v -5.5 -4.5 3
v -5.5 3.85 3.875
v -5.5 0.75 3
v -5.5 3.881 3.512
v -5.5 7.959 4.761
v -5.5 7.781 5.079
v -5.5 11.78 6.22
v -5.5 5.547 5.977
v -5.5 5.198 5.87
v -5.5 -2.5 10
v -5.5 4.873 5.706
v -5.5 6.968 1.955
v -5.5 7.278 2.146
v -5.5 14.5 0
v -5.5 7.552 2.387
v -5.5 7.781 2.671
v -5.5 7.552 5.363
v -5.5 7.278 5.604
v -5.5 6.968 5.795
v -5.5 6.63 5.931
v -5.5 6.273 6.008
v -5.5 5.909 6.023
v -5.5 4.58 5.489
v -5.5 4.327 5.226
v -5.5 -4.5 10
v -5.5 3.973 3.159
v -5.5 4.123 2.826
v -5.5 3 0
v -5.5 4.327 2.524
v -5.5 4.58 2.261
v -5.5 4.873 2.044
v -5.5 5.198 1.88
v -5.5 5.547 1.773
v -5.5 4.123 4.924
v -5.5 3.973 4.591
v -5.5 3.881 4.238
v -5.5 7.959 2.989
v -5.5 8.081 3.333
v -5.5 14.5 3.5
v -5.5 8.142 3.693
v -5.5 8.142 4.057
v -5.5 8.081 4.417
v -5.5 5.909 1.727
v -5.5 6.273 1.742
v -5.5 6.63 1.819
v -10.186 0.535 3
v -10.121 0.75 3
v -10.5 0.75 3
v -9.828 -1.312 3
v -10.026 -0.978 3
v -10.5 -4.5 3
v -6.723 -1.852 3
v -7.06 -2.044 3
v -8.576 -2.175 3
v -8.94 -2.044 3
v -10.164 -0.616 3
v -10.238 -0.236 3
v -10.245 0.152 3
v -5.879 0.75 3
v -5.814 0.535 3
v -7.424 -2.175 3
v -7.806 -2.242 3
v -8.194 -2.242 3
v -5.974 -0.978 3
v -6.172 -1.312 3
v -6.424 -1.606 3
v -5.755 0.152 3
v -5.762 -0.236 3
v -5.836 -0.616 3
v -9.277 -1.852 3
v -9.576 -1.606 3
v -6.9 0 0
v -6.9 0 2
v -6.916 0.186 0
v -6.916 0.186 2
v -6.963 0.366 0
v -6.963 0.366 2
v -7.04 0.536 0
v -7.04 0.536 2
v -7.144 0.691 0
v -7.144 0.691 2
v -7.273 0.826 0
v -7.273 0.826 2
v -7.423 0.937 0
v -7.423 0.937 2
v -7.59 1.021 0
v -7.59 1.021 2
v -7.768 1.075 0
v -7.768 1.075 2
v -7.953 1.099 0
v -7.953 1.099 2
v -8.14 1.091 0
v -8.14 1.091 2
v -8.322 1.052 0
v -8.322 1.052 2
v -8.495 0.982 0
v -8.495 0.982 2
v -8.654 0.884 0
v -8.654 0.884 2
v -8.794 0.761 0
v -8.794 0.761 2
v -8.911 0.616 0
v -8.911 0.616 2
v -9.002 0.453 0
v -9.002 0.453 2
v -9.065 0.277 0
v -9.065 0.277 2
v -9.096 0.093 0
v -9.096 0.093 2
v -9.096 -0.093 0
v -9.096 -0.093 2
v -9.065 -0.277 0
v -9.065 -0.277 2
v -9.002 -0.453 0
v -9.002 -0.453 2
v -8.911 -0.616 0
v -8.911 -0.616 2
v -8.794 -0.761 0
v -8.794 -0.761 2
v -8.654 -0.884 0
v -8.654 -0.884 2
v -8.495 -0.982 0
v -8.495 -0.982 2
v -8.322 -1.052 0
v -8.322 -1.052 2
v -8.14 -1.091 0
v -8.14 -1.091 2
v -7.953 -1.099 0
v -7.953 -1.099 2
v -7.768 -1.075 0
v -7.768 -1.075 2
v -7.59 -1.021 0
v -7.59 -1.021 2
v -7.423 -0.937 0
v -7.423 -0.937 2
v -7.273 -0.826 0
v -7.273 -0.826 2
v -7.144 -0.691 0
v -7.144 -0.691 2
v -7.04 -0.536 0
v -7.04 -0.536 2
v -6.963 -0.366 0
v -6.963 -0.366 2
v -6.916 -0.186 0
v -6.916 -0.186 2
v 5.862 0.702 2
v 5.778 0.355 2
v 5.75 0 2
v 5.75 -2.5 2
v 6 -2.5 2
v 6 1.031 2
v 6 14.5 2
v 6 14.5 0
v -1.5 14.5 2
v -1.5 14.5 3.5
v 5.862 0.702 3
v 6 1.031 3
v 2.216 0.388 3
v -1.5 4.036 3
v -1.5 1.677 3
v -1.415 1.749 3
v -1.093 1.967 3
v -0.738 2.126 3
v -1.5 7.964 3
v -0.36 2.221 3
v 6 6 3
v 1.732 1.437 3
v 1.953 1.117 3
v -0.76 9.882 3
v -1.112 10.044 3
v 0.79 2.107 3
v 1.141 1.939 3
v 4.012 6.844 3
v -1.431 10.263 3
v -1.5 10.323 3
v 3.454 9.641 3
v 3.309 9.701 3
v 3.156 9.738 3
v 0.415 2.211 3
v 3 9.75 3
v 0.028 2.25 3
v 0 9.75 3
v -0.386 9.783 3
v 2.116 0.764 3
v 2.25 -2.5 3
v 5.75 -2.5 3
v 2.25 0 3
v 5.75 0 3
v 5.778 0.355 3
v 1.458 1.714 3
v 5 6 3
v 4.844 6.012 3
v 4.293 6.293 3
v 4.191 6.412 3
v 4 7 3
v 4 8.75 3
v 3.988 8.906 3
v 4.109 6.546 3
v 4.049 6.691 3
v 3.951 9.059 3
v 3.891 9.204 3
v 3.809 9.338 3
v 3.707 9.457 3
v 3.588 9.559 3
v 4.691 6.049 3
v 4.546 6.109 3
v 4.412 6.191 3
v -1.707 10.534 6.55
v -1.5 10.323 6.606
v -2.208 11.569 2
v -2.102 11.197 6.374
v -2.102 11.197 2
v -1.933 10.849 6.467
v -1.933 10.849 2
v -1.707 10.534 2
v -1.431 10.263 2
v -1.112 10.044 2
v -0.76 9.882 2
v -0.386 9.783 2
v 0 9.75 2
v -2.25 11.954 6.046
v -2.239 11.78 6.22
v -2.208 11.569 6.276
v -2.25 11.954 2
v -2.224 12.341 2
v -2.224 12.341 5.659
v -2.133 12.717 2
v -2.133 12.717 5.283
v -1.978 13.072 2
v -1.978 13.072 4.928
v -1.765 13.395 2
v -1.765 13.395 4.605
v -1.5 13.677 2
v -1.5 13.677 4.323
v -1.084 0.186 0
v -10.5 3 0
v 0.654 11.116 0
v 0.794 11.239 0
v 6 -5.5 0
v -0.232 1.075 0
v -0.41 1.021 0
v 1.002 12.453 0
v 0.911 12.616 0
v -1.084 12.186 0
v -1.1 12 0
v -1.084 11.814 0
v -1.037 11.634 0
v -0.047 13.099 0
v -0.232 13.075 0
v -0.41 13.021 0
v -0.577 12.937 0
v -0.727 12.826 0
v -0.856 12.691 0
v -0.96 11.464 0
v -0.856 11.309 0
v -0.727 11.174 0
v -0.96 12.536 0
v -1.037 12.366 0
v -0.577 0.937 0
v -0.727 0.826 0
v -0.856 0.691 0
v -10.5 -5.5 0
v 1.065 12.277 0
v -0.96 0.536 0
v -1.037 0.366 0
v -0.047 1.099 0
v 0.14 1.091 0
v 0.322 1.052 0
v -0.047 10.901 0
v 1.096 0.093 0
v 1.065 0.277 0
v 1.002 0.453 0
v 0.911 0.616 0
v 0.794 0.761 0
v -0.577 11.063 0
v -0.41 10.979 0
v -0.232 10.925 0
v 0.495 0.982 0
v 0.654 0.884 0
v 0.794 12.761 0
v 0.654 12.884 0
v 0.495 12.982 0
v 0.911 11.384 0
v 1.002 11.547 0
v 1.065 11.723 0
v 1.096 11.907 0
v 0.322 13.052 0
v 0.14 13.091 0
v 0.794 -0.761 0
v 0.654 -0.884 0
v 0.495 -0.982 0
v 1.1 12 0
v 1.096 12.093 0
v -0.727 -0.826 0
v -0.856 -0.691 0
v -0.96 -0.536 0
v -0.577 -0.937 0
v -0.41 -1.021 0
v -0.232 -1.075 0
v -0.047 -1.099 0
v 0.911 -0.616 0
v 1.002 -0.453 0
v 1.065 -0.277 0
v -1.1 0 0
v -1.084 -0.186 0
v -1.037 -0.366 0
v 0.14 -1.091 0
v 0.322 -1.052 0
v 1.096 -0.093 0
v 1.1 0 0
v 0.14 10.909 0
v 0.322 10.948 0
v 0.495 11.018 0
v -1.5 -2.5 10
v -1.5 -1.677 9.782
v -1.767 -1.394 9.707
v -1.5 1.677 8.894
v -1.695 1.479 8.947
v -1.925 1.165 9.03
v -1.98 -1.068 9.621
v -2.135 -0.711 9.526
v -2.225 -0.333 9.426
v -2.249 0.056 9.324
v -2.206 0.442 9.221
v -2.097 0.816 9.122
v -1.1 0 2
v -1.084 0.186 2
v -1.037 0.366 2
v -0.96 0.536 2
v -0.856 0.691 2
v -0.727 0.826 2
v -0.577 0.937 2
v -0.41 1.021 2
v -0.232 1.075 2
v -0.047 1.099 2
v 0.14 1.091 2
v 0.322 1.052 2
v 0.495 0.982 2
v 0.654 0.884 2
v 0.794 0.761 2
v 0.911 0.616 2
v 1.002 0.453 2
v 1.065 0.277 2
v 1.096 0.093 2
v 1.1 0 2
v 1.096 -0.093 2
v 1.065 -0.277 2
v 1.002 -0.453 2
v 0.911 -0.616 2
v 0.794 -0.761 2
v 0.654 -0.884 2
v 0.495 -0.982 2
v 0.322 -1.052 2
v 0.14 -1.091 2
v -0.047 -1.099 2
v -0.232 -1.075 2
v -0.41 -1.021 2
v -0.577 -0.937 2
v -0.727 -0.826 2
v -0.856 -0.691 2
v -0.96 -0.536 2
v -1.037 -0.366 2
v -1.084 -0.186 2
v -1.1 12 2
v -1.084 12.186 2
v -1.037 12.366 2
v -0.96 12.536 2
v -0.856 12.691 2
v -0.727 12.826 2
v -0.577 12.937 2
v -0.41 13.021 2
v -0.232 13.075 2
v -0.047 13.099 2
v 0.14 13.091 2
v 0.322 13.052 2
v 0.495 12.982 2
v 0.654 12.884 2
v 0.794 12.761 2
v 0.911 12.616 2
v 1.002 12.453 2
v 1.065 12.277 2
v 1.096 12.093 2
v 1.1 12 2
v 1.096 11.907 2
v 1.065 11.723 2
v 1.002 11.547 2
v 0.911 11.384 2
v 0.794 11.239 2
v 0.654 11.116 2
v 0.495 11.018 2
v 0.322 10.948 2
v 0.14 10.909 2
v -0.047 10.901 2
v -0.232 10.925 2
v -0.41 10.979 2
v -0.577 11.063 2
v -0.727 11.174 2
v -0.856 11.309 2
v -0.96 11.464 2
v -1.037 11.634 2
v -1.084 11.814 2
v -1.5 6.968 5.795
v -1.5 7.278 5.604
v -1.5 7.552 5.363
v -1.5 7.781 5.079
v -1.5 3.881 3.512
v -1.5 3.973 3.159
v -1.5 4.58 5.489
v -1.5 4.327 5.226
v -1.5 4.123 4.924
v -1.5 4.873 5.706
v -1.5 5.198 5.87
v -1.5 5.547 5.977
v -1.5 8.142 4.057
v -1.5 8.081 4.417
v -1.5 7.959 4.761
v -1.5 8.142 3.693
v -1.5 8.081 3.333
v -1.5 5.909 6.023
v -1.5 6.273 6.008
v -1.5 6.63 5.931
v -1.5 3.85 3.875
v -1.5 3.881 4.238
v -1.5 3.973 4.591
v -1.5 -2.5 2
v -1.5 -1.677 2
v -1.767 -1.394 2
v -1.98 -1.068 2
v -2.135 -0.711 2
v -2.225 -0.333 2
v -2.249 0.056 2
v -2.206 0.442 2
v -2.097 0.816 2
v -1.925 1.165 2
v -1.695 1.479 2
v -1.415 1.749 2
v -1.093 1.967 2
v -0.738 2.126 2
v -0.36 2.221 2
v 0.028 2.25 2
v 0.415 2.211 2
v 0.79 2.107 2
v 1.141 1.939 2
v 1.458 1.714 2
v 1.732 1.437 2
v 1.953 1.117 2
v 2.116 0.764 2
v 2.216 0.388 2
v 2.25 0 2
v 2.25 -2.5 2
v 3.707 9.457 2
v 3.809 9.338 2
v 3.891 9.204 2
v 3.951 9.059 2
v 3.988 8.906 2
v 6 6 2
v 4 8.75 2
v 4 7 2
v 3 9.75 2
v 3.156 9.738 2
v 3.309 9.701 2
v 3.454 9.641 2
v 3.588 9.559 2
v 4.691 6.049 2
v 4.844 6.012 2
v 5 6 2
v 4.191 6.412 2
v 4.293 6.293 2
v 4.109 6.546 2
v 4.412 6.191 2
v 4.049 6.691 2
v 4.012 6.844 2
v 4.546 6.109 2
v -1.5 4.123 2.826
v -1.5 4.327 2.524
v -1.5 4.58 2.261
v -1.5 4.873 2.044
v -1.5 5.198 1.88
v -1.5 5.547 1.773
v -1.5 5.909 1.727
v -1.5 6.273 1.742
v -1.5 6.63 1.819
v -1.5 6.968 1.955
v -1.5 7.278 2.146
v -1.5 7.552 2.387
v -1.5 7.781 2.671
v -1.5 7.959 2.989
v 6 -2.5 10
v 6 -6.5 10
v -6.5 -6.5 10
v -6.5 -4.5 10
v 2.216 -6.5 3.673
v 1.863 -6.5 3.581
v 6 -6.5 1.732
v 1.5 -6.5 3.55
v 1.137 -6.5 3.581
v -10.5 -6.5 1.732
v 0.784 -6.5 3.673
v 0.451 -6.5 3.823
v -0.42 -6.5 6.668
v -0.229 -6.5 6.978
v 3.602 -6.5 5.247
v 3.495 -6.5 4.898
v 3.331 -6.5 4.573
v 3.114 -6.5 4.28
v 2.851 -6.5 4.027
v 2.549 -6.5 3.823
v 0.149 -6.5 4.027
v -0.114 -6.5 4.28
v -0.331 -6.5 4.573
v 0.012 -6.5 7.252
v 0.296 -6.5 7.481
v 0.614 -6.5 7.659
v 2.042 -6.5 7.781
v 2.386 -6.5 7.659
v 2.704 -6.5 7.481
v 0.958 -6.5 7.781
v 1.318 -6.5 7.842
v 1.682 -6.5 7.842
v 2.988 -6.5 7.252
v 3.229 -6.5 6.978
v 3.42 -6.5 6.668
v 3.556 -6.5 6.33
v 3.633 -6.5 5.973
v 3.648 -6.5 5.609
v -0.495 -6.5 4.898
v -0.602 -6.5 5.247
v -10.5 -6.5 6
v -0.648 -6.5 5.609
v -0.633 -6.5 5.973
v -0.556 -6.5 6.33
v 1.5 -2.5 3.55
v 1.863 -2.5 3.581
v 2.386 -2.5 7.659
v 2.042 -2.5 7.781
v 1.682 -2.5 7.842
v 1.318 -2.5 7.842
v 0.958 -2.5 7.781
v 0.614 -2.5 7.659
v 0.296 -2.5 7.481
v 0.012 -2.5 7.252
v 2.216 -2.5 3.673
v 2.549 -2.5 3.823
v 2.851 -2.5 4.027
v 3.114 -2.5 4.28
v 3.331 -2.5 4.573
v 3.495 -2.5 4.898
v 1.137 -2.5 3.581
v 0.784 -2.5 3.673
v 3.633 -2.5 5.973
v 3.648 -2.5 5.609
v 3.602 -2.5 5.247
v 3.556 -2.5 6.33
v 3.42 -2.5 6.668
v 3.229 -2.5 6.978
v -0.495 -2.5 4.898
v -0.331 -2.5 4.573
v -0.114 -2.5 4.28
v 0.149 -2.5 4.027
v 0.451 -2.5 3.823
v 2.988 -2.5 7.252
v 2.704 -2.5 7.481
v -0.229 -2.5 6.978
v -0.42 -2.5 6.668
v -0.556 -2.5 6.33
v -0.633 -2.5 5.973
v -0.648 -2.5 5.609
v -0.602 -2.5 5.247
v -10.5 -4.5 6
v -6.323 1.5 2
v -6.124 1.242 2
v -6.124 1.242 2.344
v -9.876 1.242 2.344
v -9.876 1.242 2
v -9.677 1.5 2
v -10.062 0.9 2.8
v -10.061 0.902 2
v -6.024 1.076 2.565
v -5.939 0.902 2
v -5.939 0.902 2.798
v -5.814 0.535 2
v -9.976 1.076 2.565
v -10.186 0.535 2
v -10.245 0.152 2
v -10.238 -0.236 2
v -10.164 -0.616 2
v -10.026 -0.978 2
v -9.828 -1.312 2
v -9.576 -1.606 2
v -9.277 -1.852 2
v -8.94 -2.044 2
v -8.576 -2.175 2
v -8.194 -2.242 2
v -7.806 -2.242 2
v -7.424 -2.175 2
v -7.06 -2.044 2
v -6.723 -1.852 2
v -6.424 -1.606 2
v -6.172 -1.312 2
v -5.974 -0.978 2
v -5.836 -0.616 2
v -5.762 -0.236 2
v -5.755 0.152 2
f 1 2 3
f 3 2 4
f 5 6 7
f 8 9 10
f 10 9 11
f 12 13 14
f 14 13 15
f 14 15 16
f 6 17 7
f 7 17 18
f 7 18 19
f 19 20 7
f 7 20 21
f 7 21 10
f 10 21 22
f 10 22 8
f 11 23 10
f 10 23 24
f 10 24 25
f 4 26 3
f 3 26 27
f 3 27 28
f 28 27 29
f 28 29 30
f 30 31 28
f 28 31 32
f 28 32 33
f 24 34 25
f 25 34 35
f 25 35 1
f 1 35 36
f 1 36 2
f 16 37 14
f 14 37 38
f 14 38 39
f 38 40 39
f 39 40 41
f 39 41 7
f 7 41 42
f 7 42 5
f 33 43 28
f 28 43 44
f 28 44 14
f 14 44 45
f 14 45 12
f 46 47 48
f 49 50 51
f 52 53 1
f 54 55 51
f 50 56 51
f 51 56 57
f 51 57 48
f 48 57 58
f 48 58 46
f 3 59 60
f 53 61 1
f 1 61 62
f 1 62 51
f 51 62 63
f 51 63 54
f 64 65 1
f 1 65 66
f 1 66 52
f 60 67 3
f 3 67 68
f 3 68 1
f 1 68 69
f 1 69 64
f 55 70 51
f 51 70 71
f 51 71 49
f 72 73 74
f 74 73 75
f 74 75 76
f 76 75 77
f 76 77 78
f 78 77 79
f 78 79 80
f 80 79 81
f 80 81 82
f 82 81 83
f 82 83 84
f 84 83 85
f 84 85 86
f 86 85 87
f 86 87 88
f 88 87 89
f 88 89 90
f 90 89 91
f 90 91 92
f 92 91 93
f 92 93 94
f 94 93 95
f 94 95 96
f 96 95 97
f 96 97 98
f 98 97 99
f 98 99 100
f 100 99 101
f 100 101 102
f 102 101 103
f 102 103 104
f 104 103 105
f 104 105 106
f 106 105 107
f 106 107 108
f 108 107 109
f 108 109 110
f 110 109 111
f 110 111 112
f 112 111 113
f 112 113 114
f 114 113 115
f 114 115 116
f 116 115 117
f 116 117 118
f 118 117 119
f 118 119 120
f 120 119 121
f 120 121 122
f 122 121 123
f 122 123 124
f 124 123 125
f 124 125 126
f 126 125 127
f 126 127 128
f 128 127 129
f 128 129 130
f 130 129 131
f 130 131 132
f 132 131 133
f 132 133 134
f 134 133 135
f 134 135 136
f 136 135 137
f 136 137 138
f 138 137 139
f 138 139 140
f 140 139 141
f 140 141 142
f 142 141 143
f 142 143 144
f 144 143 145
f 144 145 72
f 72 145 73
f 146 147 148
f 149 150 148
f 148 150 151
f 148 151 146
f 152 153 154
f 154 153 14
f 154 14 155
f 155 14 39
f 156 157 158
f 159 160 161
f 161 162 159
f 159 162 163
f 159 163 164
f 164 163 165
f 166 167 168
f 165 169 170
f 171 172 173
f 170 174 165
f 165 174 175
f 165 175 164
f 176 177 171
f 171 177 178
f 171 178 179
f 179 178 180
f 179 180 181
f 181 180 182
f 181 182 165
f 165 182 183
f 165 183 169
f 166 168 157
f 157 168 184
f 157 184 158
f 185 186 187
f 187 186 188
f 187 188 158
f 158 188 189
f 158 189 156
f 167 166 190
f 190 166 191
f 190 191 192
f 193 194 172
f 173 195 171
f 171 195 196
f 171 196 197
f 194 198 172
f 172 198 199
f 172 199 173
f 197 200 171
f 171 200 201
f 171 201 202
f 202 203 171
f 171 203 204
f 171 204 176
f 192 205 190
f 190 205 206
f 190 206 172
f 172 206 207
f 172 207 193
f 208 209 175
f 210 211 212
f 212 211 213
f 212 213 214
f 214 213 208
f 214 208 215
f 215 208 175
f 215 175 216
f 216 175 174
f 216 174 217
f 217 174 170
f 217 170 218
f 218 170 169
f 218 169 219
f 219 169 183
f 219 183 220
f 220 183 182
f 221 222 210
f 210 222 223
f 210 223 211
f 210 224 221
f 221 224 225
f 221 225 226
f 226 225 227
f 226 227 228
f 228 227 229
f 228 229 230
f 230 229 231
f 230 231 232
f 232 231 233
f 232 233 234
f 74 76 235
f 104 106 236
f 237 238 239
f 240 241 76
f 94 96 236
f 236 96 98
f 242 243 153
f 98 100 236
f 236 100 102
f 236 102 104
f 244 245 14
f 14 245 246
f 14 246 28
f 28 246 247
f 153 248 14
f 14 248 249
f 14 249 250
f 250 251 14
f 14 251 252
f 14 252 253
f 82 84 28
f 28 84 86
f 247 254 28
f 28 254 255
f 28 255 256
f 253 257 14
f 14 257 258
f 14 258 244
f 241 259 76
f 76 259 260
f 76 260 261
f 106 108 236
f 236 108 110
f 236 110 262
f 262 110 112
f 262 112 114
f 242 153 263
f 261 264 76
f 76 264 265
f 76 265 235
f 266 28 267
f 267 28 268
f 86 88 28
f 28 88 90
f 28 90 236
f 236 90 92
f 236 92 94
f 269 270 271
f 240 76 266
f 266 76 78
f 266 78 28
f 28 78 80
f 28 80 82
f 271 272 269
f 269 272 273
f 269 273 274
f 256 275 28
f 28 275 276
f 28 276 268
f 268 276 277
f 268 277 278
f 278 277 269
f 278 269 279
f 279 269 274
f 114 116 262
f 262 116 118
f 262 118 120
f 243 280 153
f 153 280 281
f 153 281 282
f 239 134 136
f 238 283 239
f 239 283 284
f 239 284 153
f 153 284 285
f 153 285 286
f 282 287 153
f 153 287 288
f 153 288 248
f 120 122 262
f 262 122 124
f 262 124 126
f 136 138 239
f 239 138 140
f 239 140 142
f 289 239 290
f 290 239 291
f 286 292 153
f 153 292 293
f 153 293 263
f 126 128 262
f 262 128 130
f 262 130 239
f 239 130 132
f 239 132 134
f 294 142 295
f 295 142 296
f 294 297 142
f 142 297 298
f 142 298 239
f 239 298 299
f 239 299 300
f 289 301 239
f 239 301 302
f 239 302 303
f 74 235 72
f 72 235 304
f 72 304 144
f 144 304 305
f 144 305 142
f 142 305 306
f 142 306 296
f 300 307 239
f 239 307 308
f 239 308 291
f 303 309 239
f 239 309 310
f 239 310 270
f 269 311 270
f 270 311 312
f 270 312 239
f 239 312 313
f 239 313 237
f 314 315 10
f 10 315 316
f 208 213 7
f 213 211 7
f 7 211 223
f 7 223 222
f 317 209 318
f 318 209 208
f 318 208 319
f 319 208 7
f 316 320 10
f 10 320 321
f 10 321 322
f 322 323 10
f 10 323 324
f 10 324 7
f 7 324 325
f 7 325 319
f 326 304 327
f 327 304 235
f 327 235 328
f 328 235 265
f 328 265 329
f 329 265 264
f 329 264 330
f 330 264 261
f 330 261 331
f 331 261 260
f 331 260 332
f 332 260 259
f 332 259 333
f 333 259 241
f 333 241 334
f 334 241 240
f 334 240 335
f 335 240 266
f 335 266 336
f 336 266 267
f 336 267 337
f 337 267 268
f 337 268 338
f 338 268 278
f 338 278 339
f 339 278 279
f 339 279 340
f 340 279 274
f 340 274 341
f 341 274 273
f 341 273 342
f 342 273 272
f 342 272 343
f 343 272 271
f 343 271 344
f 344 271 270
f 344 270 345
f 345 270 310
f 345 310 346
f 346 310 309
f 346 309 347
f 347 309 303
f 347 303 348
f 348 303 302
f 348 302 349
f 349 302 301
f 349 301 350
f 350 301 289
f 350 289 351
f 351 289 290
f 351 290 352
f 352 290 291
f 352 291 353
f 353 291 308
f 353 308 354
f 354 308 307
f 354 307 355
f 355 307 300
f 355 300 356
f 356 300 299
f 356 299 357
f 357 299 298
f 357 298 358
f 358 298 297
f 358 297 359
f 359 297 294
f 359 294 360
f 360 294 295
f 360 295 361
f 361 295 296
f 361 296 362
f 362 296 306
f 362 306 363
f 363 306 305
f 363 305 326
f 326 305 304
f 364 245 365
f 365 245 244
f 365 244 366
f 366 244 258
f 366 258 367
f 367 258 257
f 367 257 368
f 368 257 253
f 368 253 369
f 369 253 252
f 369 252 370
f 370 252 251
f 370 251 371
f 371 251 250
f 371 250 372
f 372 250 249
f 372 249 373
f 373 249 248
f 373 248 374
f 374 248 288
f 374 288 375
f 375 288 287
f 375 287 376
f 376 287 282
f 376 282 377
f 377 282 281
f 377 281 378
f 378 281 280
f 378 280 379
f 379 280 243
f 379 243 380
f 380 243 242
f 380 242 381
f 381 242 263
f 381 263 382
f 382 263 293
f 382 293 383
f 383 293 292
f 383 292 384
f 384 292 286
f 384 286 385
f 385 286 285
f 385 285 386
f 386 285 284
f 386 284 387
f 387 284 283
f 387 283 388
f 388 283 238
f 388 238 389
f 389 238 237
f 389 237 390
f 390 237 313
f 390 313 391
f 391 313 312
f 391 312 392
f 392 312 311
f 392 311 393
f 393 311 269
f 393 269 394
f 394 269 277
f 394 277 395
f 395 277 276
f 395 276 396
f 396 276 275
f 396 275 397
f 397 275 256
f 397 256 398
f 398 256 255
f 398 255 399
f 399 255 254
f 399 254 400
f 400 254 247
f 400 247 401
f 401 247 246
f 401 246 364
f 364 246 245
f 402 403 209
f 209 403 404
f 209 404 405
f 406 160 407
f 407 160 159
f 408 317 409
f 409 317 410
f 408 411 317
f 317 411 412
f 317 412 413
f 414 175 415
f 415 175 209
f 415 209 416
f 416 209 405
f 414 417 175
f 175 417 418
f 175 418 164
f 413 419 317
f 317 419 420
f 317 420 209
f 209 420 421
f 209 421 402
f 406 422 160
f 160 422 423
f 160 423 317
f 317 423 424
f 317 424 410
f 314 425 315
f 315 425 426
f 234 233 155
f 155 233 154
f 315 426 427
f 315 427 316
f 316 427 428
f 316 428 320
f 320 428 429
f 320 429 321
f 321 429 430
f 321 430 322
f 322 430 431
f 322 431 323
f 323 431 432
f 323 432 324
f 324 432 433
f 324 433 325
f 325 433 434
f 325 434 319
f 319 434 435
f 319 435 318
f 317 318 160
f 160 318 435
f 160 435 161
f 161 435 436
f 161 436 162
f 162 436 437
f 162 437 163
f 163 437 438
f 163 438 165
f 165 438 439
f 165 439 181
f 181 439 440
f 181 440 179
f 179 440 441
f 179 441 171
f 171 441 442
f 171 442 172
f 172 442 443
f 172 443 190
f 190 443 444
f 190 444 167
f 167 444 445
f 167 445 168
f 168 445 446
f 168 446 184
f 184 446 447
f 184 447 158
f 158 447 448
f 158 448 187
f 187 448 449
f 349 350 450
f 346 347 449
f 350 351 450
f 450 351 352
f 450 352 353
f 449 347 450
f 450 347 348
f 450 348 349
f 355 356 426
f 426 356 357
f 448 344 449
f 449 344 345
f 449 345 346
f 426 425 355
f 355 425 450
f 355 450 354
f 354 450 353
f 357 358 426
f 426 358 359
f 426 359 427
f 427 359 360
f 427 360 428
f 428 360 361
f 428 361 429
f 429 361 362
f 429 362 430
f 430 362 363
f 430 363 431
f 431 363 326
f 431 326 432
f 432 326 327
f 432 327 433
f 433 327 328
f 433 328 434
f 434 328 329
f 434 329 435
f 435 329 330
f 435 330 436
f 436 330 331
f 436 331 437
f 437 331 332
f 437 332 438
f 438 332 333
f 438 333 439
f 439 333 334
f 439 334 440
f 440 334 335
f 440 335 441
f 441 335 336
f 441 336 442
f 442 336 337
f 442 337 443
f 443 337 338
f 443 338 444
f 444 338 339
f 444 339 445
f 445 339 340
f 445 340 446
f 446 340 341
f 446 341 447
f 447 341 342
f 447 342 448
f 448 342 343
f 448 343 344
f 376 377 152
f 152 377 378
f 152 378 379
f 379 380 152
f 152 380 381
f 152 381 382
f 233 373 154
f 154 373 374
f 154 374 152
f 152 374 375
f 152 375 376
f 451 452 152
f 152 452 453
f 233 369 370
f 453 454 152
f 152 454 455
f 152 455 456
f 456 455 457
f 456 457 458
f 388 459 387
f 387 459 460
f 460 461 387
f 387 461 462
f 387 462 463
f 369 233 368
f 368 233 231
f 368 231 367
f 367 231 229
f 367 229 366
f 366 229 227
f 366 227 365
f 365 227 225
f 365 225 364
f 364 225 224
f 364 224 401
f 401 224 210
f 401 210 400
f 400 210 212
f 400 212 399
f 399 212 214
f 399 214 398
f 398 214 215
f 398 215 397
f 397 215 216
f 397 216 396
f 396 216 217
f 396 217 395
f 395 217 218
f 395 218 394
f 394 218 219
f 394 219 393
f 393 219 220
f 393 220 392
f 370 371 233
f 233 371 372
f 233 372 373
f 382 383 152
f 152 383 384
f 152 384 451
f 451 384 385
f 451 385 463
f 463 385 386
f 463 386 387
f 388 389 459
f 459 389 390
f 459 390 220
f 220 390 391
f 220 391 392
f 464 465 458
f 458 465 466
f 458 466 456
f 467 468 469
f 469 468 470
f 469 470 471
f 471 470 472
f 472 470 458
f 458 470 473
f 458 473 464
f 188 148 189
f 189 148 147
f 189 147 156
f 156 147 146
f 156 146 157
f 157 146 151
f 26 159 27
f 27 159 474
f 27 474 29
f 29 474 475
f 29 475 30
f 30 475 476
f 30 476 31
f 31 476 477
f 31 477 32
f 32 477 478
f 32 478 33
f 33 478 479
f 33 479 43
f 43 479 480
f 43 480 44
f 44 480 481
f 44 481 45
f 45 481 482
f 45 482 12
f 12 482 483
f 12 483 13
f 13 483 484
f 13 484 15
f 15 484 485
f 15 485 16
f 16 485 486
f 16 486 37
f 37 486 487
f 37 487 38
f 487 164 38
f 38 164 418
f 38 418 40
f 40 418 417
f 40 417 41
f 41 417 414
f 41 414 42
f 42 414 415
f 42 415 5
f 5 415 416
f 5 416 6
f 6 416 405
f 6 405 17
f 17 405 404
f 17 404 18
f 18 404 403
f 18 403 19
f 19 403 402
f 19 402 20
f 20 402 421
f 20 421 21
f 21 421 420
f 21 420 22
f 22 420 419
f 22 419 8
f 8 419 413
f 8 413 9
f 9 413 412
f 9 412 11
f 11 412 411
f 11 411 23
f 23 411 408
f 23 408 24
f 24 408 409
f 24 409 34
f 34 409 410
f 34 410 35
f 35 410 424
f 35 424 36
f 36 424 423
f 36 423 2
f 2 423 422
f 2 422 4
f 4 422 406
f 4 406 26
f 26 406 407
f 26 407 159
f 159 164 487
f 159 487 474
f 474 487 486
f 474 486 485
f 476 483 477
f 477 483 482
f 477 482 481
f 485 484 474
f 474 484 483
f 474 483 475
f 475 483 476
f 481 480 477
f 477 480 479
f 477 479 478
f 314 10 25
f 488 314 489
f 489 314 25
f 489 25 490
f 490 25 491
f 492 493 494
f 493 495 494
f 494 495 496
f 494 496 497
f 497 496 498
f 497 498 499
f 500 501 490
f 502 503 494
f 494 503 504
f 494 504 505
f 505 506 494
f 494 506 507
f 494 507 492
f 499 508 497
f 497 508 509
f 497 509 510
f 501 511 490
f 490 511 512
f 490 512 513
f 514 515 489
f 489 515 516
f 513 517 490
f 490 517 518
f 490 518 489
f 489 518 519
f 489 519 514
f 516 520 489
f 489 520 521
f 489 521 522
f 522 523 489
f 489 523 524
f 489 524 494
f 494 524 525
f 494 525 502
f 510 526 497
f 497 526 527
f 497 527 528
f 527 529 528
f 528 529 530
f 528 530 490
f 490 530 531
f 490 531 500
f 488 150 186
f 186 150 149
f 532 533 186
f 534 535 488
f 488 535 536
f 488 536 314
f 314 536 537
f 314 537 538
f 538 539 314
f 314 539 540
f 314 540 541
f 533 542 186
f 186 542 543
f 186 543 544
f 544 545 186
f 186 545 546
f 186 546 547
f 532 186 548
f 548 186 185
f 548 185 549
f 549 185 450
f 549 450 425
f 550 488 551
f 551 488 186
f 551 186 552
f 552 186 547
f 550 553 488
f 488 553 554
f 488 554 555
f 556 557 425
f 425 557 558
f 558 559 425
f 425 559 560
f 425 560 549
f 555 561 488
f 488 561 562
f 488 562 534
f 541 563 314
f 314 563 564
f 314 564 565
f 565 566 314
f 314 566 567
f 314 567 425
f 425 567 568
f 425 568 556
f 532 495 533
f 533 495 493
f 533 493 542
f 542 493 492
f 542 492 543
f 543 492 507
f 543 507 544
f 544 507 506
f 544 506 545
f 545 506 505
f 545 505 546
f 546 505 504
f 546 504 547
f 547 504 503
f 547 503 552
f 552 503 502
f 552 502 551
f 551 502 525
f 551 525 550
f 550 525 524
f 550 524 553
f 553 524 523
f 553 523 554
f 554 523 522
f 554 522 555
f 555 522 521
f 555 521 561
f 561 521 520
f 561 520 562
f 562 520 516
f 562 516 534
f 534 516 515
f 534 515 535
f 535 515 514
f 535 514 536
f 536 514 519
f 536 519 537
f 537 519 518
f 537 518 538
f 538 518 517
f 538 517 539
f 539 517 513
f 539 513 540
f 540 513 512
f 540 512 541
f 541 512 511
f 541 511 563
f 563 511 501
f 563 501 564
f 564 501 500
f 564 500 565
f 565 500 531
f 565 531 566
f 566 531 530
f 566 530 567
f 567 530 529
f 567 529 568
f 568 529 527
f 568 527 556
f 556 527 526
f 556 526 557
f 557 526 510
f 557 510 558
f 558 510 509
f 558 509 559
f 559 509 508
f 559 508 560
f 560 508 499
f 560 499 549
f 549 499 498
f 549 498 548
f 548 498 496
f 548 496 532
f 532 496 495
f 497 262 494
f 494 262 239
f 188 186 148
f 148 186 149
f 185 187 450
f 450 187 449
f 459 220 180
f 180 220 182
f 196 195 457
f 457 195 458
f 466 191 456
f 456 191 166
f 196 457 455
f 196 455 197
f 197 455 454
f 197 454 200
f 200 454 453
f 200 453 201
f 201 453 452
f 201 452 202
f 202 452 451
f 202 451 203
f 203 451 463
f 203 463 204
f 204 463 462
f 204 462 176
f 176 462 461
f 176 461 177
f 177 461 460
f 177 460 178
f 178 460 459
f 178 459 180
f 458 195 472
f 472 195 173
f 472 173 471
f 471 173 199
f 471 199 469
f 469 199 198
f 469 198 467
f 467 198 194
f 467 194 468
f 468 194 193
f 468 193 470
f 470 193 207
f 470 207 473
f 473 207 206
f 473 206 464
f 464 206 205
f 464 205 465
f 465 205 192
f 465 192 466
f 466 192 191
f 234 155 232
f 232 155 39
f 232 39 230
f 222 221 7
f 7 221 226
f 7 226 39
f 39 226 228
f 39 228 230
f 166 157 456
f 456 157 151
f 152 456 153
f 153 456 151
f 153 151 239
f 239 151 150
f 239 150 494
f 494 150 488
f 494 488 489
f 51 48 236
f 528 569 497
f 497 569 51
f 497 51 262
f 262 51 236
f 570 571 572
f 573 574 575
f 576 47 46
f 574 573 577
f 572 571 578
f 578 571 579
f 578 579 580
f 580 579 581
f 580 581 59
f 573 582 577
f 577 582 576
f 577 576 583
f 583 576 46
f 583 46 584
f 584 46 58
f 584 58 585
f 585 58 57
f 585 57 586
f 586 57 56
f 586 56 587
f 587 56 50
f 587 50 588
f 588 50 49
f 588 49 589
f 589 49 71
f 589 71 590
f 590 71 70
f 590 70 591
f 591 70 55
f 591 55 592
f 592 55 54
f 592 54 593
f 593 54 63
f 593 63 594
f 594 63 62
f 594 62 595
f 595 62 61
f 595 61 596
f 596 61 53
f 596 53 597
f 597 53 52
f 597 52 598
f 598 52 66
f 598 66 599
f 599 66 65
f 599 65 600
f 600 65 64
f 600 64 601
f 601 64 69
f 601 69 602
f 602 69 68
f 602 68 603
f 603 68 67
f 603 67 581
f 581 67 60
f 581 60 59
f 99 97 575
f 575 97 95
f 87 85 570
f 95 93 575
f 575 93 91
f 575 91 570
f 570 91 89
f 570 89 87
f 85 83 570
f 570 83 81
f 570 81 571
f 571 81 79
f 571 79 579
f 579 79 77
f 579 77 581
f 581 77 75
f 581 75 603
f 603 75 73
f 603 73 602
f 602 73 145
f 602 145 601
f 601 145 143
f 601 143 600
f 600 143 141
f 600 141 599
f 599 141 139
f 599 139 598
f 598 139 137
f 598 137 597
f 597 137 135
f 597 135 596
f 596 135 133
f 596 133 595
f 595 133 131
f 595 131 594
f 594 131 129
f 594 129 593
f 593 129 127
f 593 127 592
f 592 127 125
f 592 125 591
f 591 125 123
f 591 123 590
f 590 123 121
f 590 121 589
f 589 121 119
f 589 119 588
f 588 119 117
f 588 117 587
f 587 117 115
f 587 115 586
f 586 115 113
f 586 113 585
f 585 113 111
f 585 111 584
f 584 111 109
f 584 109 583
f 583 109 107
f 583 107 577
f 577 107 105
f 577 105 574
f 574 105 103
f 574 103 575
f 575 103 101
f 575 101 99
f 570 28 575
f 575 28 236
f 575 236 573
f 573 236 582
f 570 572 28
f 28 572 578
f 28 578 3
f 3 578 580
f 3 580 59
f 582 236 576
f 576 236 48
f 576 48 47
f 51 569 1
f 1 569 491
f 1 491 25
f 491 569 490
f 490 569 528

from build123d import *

# Parameters (mm, degrees)
SKETCH_1_W               = 23
SKETCH_1_H               = 17
SKETCH_1_R               = 1.1
EXTRUDE_1_DEPTH          = 3
EXTRUDE_2_DEPTH          = 6
CUT_EXTRUDE_1_DEPTH      = 23.349496639
CUT_EXTRUDE_1_DEPTH_BACK = 1
SKETCH_3_R               = 2.25
CUT_EXTRUDE_2_REACH      = 24.349
SKETCH_4_W               = 4.5
SKETCH_4_H               = 17
CUT_EXTRUDE_3_DEPTH      = 2
SKETCH_6_R               = 2.15
CUT_EXTRUDE_4_DEPTH      = 4
SKETCH_7_W               = 16.5
SKETCH_7_H               = 10
EXTRUDE_3_DEPTH          = 4
SKETCH_8_R               = 2.15
CUT_EXTRUDE_5_DEPTH      = 4
CHAMFER_1_SIZE           = 1
CHAMFER_1_SIZE2          = 1.732050808
CHAMFER_2_SIZE           = 4
CUT_EXTRUDE_6_DEPTH      = 1
FILLET_1_R               = 2
CUT_EXTRUDE_7_REACH      = 21.881
FILLET_2_R               = 1
CHAMFER_3_SIZE           = 2
CHAMFER_3_SIZE2          = 2.813680863
CUT_EXTRUDE_8_REACH      = 27.729
SKETCH_11_W              = 5
SKETCH_11_H              = 10
EXTRUDE_4_DEPTH          = 5
CUT_EXTRUDE_9_REACH      = 21.222
SKETCH_13_R              = 1.1
SKETCH_14_R              = 2.25
CUT_EXTRUDE_10_DEPTH     = 1
EXTRUDE_6_REACH          = 26.135
FILLET_3_R               = 2
SKETCH_15_W              = 5
SKETCH_15_H              = 2
EXTRUDE_5_DEPTH          = 7
CUT_EXTRUDE_11_DEPTH     = 5
CHAMFER_4_SIZE           = 4


with BuildPart() as part:
    # 草图1 → 凸台-拉伸1 (new body)
    with BuildSketch(Plane.XY):
        with Locations((4, 6)):
            Rectangle(SKETCH_1_W, SKETCH_1_H)
        Circle(SKETCH_1_R, mode=Mode.SUBTRACT)
        with Locations((8, 0)):
            Circle(SKETCH_1_R, mode=Mode.SUBTRACT)
        with Locations((0, 12)):
            Circle(SKETCH_1_R, mode=Mode.SUBTRACT)
        with Locations((8, 12)):
            Circle(SKETCH_1_R, mode=Mode.SUBTRACT)
    extrude(amount=EXTRUDE_1_DEPTH)

    # 草图2 → 凸台-拉伸2 (add)
    with BuildSketch(Plane.ZY.offset(7.5)):
        Polygon((5.5, 14.5), (10, -2.5), (5.5, -2.5), (0, -2.5), (0, 14.5), align=None)
    extrude(amount=-EXTRUDE_2_DEPTH)

    # 草图3 → 切除-拉伸1 (cut, two sides: drawn at the far end of the back side and taken through both)
    with BuildSketch(Plane.XY.offset(3).offset(-CUT_EXTRUDE_1_DEPTH_BACK)):
        with Locations(Location((0, 12, 0), (0, 0, 228.189685104))):
            Circle(SKETCH_3_R)
        with Locations((8, 12)):
            Circle(SKETCH_3_R)
        with Locations(Location((0, 0, 0), (0, 0, 131.810314896))):
            Circle(SKETCH_3_R)
        with Locations((8, 0)):
            Circle(SKETCH_3_R)
    extrude(amount=CUT_EXTRUDE_1_DEPTH + CUT_EXTRUDE_1_DEPTH_BACK, mode=Mode.SUBTRACT)

    # 草图4 → 切除-拉伸2 (cut, up to next)
    with BuildSketch(Plane.XY.offset(3), mode=Mode.PRIVATE) as cut_extrude_2_sk1:
        with Locations((13.25, 6)):
            Rectangle(SKETCH_4_W, SKETCH_4_H)
    cut_extrude_2_tool1 = extrude(cut_extrude_2_sk1.sketch, amount=-CUT_EXTRUDE_2_REACH, mode=Mode.PRIVATE) & part.part
    add(cut_extrude_2_tool1.solids().sort_by_distance((13.25, 6, 3))[0], mode=Mode.SUBTRACT)

    # 草图5 → 切除-拉伸3 (cut)
    with BuildSketch(Plane.ZY.offset(7.5)):
        Polygon((0, 14.5), (0, -2.5), (10, -2.5), (5.5, 14.5), align=None)
    extrude(amount=-CUT_EXTRUDE_3_DEPTH, mode=Mode.SUBTRACT)

    # 草图6 → 切除-拉伸4 (cut)
    with BuildSketch(Plane.ZY.offset(5.5)):
        with Locations(Location((3.875, 6, 0), (0, 0, 270))):
            Circle(SKETCH_6_R)
    extrude(amount=-CUT_EXTRUDE_4_DEPTH, mode=Mode.SUBTRACT)

    # 草图7 → 凸台-拉伸3 (add)
    with BuildSketch(Plane.XZ.offset(2.5)):
        with Locations((2.75, 5)):
            Rectangle(SKETCH_7_W, SKETCH_7_H)
    extrude(amount=EXTRUDE_3_DEPTH)

    # 草图8 → 切除-拉伸5 (cut)
    with BuildSketch(Plane.XZ.offset(6.5)):
        with Locations(Location((1.5, 5.7, 0), (0, 0, 270))):
            Circle(SKETCH_8_R)
    extrude(amount=-CUT_EXTRUDE_5_DEPTH, mode=Mode.SUBTRACT)

    # 倒角1
    chamfer_1_edges = [part.edges().sort_by_distance(p)[0] for p in [
        (2.75, -6.5, 0),
    ]]
    chamfer_1_side = [part.faces().sort_by_distance(p)[0] for p in [
        (2.692629218, 3.908206749, 0),
    ]]
    chamfer(chamfer_1_edges, length=CHAMFER_1_SIZE, length2=CHAMFER_1_SIZE2, reference=chamfer_1_side[0])

    # 倒角2
    chamfer_2_edges = [part.edges().sort_by_distance(p)[0] for p in [
        (11, -4.5, 10),
    ]]
    chamfer(chamfer_2_edges, length=CHAMFER_2_SIZE)

    # 草图9 → 切除-拉伸6 (cut)
    with BuildSketch(Plane.XY.offset(3)):
        with BuildLine():
            Line((-1.5, 13.677050983), (-1.5, 14.5))
            Line((-1.5, 14.5), (2.25, 14.5))
            Line((2.25, 14.5), (2.25, 12))
            ThreePointArc((2.25, 12), (0.918558654, 14.053959591), (-1.5, 13.677050983))
        make_face()
        with BuildLine():
            Line((5.75, 12), (5.75, 14.5))
            Line((5.75, 14.5), (11, 14.5))
            Line((11, 14.5), (11, 9.75))
            Line((11, 9.75), (8, 9.75))
            ThreePointArc((8, 9.75), (9.590990258, 13.590990258), (5.75, 12))
        make_face()
        with BuildLine():
            Line((2.25, 0), (2.25, -2.5))
            Line((2.25, -2.5), (-1.5, -2.5))
            Line((-1.5, -2.5), (-1.5, -1.677050983))
            ThreePointArc((-1.5, -1.677050983), (0.918558654, -2.053959591), (2.25, 0))
        make_face()
        with BuildLine():
            Line((5.75, 0), (5.75, -2.5))
            Line((5.75, -2.5), (11, -2.5))
            Line((11, -2.5), (11, 2.25))
            Line((11, 2.25), (8, 2.25))
            ThreePointArc((8, 2.25), (9.590990258, -1.590990258), (5.75, 0))
        make_face()
    extrude(amount=-CUT_EXTRUDE_6_DEPTH, mode=Mode.SUBTRACT)

    # 圆角1
    fillet_1_edges = [part.edges().sort_by_distance(p)[0] for p in [
        (11, 14.5, 1),
    ]]
    fillet(fillet_1_edges, radius=FILLET_1_R)

    # 草图10 → 切除-拉伸7 (cut, up to next)
    with BuildSketch(Plane.XY.offset(2), mode=Mode.PRIVATE) as cut_extrude_7_sk1:
        with BuildLine():
            Line((4, 14.5), (11, 14.5))
            Line((11, 14.5), (11, 6))
            Line((11, 6), (4, 6))
            Line((4, 6), (4, 9.75))
            Line((4, 9.75), (0, 9.75))
            ThreePointArc((0, 9.75), (1.590990258, 10.409009742), (2.25, 12))
            Line((2.25, 12), (2.25, 14.5))
            Line((2.25, 14.5), (4, 14.5))
        make_face()
    cut_extrude_7_tool1 = extrude(cut_extrude_7_sk1.sketch, amount=CUT_EXTRUDE_7_REACH, mode=Mode.PRIVATE) & part.part
    add(cut_extrude_7_tool1.solids().sort_by_distance((6.881457, 10.476255, 2))[0], mode=Mode.SUBTRACT)

    # 圆角2
    fillet_2_edges = [part.edges().sort_by_distance(p)[0] for p in [
        (4, 9.75, 2.5),
        (4, 6, 2.5),
    ]]
    fillet(fillet_2_edges, radius=FILLET_2_R)

    # 倒角3
    chamfer_3_edges = [part.edges().sort_by_distance(p)[0] for p in [
        (-3.5, 14.5, 5.5),
    ]]
    chamfer_3_side = [part.faces().sort_by_distance(p)[0] for p in [
        (0.040697674, 14.5, 1.895348837),
    ]]
    chamfer(chamfer_3_edges, length=CHAMFER_3_SIZE, length2=CHAMFER_3_SIZE2, reference=chamfer_3_side[0])

    # 草图11 → 切除-拉伸8 (cut, up to next)
    with BuildSketch(Plane.XZ.offset(6.5), mode=Mode.PRIVATE) as cut_extrude_8_sk1:
        with Locations((8.5, 5)):
            Rectangle(SKETCH_11_W, SKETCH_11_H)
    cut_extrude_8_tool1 = extrude(cut_extrude_8_sk1.sketch, amount=-CUT_EXTRUDE_8_REACH, mode=Mode.PRIVATE) & part.part
    add(cut_extrude_8_tool1.solids().sort_by_distance((8.5, -6.5, 5))[0], mode=Mode.SUBTRACT)

    # 草图12 → 凸台-拉伸4 (add)
    with BuildSketch(Plane.ZY.offset(5.5)):
        Polygon((0, -5.5), (1.732050808, -6.5), (3, -6.5), (3, 1.5), (0, 1.5), align=None)
    extrude(amount=EXTRUDE_4_DEPTH)

    # 草图13 → 切除-拉伸9 (cut, up to next)
    with BuildSketch(Plane.XY.offset(3), mode=Mode.PRIVATE) as cut_extrude_9_sk1:
        with Locations((-8, 0)):
            Circle(SKETCH_13_R)
    cut_extrude_9_tool1 = extrude(cut_extrude_9_sk1.sketch, amount=-CUT_EXTRUDE_9_REACH, mode=Mode.PRIVATE) & part.part
    add(cut_extrude_9_tool1.solids().sort_by_distance((-8, 0, 3))[0], mode=Mode.SUBTRACT)

    # 草图14 → 切除-拉伸10 (cut)
    with BuildSketch(Plane.XY.offset(3)):
        with Locations((-8, 0)):
            Circle(SKETCH_14_R)
    extrude(amount=-CUT_EXTRUDE_10_DEPTH, mode=Mode.SUBTRACT)

    # 凸台-拉伸6: up to this face of the body (flat: up to its plane)
    extrude_6_end = Plane(part.part.faces().sort_by_distance((-5.5, 3.356262463, 4.741493194))[0])
    # 草图16 → 凸台-拉伸6 (add, up to the picked face)
    with BuildSketch(Plane.ZY.offset(10.5), mode=Mode.PRIVATE) as extrude_6_sk1:
        Polygon((2, 1.5), (0, 3), (0, 1.5), align=None)
    extrude_6_tool1 = split(extrude(extrude_6_sk1.sketch, amount=-EXTRUDE_6_REACH, mode=Mode.PRIVATE), bisect_by=extrude_6_end, keep=Keep.BOTH, mode=Mode.PRIVATE)
    add(extrude_6_tool1.solids().sort_by(Axis((-10.5, 2, 0.666667), (1, 0, 0)))[0])

    # 圆角3
    # the kernel refuses this fillet: 2 mm, written as the material it takes off along each edge
    with BuildSketch(Plane(origin=(-10.5, 1.5, 7.042393307), x_dir=(1, 0, 0), z_dir=(0, 0, -1))) as fillet_3_piece_1_section:
        with BuildLine():
            CenterArc((2, 1.616957323), FILLET_3_R, 180, 53.947557716)
            Line((0, 1.616957323), (0, 0))
            Line((0, 0), (0.822949017, 0))
        make_face()
    fillet_3_piece_1 = extrude(amount=9.084786613, mode=Mode.PRIVATE)
    fillet_3_piece_1 = split(fillet_3_piece_1, bisect_by=Plane(origin=(-10.039236146, 1.139870627, 2.480172498), z_dir=(0, 0.8000000000000002, 0.6)), keep=Keep.TOP, mode=Mode.PRIVATE)
    add(fillet_3_piece_1, mode=Mode.SUBTRACT)

    # 草图15 → 凸台-拉伸5 (add)
    with BuildSketch(Plane.XY.offset(3)):
        with Locations((-8, -5.5)):
            Rectangle(SKETCH_15_W, SKETCH_15_H)
    extrude(amount=EXTRUDE_5_DEPTH)

    # 草图17 → 切除-拉伸11 (cut)
    with BuildSketch(Plane.ZY.offset(10.5)):
        Polygon((2, 1.5), (3, 0.75), (3, 1.5), align=None)
    extrude(amount=-CUT_EXTRUDE_11_DEPTH, mode=Mode.SUBTRACT)

    # 倒角4
    chamfer_4_edges = [part.edges().sort_by_distance(p)[0] for p in [
        (-10.5, -5.5, 10),
    ]]
    chamfer(chamfer_4_edges, length=CHAMFER_4_SIZE)


solid = part.part
